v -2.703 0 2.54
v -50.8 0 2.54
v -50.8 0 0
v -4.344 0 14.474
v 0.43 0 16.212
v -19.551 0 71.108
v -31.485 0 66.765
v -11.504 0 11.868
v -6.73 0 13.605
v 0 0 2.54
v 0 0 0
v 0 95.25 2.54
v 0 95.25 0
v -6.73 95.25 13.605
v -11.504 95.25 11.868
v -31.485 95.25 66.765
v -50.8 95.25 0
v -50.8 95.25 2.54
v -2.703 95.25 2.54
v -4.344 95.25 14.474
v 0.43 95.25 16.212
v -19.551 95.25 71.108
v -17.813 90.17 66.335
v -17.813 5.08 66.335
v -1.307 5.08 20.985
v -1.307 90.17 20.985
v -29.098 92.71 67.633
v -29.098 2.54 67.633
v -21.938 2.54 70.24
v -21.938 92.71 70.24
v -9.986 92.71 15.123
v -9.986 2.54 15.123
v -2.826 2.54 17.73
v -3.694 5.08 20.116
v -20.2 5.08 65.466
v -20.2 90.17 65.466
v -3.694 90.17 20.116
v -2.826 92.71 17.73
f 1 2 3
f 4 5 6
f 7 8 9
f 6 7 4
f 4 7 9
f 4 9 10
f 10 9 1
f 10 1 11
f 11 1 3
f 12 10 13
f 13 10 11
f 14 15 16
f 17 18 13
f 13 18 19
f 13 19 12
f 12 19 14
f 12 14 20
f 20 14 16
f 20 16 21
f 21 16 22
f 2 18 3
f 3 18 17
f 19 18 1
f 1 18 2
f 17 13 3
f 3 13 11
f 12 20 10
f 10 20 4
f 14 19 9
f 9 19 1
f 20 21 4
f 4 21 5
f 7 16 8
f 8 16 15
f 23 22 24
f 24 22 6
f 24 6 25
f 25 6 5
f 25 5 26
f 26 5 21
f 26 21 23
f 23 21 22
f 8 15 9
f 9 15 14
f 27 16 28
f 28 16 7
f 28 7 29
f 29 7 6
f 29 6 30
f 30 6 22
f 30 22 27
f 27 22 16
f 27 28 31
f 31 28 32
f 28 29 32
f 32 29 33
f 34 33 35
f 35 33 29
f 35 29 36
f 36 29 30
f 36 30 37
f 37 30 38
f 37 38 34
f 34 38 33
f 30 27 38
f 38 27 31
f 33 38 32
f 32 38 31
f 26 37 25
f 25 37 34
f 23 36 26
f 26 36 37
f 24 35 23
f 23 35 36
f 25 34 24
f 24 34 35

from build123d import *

# Parameters (mm, degrees)
SKETCH1_W           = 95.25
SKETCH1_H           = 50.8
BOSS_EXTRUDE1_DEPTH = 2.54
BOSS_EXTRUDE2_DEPTH = 95.25
SKETCH3_W           = 12.7
SKETCH3_H           = 95.25
BOSS_EXTRUDE3_DEPTH = 2.54
SKETCH4_W           = 12.7
SKETCH4_H           = 95.25
SKETCH4_W_2         = 7.62
SKETCH4_H_2         = 90.17
BOSS_EXTRUDE4_DEPTH = 55.88
CUT_EXTRUDE1_REACH  = 132.474
SKETCH5_W           = 85.09
SKETCH5_H           = 48.26


with BuildPart() as part:
    # Sketch1 → Boss-Extrude1 (new body)
    with BuildSketch(Plane(origin=(0, 0, 0), x_dir=(0, 1, 0), z_dir=(0, 0, 1))):
        with Locations((47.625, 25.4)):
            Rectangle(SKETCH1_W, SKETCH1_H)
    extrude(amount=BOSS_EXTRUDE1_DEPTH)

    # Sketch2 → Boss-Extrude2 (add)
    with BuildSketch(Plane(origin=(0, 95.25, 0), x_dir=(-1, 0, 0), z_dir=(0, 1, 0))):
        Polygon((0, 2.54), (4.34365582, 14.474096284), (6.730475077, 13.60536512), (2.703011542, 2.54), align=None)
    extrude(amount=-BOSS_EXTRUDE2_DEPTH)

    # Sketch3 → Boss-Extrude3 (add)
    with BuildSketch(Plane(origin=(-5.159996085, 0, 14.176972727), x_dir=(0.9396926207859077, 0, 0.34202014332567104), z_dir=(-0.34202014332567104, 0, 0.9396926207859077))):
        with Locations((-0.401268836, 47.625)):
            Rectangle(SKETCH3_W, SKETCH3_H)
    extrude(amount=BOSS_EXTRUDE3_DEPTH)

    # Sketch4 → Boss-Extrude4 (add)
    with BuildSketch(Plane(origin=(-6.028727249, 0, 16.563791984), x_dir=(0.9396926207859075, 0, 0.3420201433256711), z_dir=(-0.3420201433256711, 0, 0.9396926207859075))):
        with Locations((-0.401268836, 47.625)):
            Rectangle(SKETCH4_W, SKETCH4_H)
        with Locations((-0.401268836, 47.625)):
            Rectangle(SKETCH4_W_2, SKETCH4_H_2, mode=Mode.SUBTRACT)
    extrude(amount=BOSS_EXTRUDE4_DEPTH)

    # Sketch5 → Cut-Extrude1 (cut, up to next)
    with BuildSketch(Plane(origin=(5.589978778, 0, 2.034585885), x_dir=(0, 1, 0), z_dir=(0.9396926207859075, 0, 0.3420201433256711)), mode=Mode.PRIVATE) as cut_extrude1_sk1:
        with Locations((47.625, 44.296819257)):
            Rectangle(SKETCH5_W, SKETCH5_H)
    cut_extrude1_tool1 = extrude(cut_extrude1_sk1.sketch, amount=-CUT_EXTRUDE1_REACH, mode=Mode.PRIVATE) & part.part
    add(cut_extrude1_tool1.solids().sort_by_distance((-9.560426, 47.625, 43.65998))[0], mode=Mode.SUBTRACT)


solid = part.part
